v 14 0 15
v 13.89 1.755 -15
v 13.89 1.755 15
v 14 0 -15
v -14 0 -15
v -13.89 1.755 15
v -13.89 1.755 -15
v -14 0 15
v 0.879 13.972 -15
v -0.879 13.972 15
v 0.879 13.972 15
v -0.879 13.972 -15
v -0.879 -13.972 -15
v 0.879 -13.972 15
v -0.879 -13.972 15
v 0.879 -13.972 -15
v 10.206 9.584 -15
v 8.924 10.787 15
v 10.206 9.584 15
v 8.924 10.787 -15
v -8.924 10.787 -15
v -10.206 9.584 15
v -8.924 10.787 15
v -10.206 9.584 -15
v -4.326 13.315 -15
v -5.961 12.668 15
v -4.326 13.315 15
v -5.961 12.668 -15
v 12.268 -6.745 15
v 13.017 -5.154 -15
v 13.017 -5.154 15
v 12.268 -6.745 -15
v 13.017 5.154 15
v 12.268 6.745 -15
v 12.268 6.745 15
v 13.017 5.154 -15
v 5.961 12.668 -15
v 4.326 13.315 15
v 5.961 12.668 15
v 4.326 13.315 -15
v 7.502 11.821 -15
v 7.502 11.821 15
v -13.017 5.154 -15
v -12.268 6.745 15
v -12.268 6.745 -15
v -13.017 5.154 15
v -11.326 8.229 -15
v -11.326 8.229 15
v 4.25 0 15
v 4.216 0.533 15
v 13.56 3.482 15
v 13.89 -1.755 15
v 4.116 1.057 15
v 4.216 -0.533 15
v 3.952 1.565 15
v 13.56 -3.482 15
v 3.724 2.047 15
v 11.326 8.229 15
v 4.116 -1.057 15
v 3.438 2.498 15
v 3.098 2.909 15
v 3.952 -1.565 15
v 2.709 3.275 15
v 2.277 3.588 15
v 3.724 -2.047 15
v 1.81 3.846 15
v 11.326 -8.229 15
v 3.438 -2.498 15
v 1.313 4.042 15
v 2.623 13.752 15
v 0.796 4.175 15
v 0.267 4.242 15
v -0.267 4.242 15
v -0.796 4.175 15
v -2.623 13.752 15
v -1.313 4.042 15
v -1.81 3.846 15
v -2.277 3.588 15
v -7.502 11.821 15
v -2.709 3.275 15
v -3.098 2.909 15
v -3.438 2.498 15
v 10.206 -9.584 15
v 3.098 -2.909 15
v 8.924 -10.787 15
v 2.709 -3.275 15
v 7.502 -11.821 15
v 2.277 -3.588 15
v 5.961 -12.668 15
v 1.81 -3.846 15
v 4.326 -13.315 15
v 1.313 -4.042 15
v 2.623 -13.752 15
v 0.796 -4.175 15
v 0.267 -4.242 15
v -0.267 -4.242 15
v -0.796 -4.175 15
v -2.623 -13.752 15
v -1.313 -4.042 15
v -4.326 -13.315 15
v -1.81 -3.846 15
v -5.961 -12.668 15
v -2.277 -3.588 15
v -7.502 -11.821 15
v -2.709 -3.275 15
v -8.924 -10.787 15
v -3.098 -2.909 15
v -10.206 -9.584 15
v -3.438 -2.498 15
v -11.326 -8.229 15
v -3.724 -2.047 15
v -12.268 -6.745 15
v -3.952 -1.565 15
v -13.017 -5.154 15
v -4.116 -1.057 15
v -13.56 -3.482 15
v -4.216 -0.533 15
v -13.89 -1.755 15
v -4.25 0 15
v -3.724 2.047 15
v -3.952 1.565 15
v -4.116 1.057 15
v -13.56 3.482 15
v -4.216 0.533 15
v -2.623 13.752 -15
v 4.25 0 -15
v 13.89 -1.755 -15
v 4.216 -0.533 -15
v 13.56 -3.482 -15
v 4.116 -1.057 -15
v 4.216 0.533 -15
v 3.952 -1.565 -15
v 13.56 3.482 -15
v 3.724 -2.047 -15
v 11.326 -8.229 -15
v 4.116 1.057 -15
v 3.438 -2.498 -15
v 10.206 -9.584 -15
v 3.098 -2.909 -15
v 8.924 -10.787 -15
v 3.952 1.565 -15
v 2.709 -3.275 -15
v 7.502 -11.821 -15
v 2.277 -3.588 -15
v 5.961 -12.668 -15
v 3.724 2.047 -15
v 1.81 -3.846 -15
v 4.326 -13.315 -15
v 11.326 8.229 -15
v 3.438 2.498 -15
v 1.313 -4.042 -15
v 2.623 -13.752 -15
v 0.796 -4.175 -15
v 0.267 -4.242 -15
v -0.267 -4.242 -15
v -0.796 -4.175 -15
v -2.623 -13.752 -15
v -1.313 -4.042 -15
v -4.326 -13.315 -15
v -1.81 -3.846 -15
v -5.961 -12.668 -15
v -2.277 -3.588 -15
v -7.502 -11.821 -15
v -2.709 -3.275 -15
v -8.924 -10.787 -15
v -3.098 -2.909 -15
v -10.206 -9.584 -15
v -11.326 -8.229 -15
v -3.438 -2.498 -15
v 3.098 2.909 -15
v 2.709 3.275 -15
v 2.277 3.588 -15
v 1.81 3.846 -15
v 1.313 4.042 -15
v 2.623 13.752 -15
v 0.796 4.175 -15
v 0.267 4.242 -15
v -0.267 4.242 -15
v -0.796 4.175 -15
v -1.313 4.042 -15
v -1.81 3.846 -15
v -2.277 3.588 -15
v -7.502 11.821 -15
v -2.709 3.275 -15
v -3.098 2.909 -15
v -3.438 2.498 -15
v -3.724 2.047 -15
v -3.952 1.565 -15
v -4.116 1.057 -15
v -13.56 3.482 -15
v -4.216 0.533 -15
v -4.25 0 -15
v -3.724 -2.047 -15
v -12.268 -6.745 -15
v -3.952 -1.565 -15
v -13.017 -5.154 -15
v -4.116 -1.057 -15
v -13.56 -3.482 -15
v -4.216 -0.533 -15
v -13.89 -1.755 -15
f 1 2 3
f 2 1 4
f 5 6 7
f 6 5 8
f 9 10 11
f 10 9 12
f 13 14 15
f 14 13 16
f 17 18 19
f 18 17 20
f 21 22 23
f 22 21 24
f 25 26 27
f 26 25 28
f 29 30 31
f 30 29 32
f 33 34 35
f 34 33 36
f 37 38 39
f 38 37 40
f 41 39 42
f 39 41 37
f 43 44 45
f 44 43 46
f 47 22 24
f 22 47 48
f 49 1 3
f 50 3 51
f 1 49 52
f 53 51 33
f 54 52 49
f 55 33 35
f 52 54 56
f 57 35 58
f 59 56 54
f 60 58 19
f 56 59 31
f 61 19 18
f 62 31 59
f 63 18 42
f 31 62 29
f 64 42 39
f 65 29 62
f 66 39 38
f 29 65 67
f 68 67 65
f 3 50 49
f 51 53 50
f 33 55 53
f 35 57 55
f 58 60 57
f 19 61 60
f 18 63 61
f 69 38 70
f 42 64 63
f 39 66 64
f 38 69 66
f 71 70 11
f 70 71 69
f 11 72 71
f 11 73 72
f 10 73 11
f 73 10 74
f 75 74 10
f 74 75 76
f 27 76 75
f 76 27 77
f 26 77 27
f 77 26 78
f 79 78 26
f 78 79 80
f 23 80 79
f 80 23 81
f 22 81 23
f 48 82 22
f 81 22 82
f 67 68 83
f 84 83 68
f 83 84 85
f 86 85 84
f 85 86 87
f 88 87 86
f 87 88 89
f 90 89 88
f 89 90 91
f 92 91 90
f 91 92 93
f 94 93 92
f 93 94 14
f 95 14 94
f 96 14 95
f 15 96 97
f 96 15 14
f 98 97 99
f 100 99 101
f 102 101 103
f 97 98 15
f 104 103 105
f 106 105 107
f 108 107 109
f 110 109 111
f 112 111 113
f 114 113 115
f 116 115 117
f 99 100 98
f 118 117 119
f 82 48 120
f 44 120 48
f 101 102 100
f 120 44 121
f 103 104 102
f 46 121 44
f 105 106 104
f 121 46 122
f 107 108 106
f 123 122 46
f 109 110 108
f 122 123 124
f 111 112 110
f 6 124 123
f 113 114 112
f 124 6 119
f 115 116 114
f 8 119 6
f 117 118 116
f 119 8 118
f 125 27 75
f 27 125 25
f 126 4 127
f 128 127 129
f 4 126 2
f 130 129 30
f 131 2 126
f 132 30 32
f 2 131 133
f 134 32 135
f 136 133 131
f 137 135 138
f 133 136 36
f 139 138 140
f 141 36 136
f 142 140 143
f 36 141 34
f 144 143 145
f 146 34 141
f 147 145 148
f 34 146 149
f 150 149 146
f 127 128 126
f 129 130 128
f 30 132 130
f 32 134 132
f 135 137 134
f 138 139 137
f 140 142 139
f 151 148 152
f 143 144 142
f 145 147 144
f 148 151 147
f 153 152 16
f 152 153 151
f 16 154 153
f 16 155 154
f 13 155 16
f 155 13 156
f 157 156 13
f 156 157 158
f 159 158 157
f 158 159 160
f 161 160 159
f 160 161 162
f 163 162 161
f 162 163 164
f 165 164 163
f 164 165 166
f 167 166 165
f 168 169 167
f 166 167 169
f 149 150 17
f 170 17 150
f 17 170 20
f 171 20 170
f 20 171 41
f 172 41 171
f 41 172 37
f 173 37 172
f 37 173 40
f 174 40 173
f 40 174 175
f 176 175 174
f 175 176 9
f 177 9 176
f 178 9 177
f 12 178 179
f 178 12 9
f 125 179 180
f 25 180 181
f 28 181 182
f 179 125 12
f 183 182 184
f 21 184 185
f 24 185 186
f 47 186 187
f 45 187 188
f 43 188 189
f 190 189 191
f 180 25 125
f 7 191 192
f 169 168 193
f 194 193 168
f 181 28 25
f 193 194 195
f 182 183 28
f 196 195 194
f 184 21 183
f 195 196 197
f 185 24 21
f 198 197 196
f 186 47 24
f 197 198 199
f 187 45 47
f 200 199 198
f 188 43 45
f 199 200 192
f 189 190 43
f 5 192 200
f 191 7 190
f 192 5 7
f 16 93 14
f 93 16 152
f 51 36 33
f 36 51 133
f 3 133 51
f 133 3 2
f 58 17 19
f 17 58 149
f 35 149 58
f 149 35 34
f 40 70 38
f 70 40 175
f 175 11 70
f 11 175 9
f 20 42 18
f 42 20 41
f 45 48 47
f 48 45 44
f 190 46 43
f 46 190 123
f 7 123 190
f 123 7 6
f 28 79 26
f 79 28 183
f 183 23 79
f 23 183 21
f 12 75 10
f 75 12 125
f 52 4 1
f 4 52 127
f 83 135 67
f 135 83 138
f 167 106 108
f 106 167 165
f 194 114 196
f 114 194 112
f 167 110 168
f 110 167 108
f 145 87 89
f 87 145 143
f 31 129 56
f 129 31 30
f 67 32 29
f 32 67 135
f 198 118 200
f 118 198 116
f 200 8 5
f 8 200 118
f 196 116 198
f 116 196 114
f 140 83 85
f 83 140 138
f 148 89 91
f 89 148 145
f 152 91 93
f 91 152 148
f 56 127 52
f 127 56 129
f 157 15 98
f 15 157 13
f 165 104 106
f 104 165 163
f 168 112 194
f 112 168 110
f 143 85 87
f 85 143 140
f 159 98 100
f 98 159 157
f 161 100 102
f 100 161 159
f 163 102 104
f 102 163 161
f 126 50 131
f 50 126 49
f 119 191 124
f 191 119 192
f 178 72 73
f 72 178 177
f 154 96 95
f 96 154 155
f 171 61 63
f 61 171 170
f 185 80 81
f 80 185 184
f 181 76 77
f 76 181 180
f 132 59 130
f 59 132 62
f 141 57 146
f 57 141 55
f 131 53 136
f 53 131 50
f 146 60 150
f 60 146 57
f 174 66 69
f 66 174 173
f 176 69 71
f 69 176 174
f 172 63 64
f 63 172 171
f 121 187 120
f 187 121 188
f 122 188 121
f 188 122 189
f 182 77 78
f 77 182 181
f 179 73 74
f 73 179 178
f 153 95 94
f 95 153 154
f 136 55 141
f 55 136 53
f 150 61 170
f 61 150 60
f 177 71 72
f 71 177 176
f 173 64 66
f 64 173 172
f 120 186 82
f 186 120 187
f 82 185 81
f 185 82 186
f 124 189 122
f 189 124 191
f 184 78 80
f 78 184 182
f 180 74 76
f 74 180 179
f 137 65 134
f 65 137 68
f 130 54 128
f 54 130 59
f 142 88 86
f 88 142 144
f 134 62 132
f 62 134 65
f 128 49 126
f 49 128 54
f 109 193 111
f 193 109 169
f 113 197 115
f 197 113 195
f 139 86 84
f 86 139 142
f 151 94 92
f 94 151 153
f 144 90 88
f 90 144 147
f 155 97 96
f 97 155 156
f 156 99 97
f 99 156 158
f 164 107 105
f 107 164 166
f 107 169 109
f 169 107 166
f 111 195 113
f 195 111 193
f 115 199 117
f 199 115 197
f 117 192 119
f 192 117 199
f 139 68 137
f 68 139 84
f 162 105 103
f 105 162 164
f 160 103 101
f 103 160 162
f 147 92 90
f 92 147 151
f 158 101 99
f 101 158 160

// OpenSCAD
$fn = 50;


difference() {
	union() {
		translate(v = [0, 0, -15.0000000000]) {
			cylinder(h = 30, r = 14.0000000000);
		}
	}
	union() {
		translate(v = [0, 0, -100.0000000000]) {
			cylinder(h = 200, r = 4.2500000000);
		}
	}
}
